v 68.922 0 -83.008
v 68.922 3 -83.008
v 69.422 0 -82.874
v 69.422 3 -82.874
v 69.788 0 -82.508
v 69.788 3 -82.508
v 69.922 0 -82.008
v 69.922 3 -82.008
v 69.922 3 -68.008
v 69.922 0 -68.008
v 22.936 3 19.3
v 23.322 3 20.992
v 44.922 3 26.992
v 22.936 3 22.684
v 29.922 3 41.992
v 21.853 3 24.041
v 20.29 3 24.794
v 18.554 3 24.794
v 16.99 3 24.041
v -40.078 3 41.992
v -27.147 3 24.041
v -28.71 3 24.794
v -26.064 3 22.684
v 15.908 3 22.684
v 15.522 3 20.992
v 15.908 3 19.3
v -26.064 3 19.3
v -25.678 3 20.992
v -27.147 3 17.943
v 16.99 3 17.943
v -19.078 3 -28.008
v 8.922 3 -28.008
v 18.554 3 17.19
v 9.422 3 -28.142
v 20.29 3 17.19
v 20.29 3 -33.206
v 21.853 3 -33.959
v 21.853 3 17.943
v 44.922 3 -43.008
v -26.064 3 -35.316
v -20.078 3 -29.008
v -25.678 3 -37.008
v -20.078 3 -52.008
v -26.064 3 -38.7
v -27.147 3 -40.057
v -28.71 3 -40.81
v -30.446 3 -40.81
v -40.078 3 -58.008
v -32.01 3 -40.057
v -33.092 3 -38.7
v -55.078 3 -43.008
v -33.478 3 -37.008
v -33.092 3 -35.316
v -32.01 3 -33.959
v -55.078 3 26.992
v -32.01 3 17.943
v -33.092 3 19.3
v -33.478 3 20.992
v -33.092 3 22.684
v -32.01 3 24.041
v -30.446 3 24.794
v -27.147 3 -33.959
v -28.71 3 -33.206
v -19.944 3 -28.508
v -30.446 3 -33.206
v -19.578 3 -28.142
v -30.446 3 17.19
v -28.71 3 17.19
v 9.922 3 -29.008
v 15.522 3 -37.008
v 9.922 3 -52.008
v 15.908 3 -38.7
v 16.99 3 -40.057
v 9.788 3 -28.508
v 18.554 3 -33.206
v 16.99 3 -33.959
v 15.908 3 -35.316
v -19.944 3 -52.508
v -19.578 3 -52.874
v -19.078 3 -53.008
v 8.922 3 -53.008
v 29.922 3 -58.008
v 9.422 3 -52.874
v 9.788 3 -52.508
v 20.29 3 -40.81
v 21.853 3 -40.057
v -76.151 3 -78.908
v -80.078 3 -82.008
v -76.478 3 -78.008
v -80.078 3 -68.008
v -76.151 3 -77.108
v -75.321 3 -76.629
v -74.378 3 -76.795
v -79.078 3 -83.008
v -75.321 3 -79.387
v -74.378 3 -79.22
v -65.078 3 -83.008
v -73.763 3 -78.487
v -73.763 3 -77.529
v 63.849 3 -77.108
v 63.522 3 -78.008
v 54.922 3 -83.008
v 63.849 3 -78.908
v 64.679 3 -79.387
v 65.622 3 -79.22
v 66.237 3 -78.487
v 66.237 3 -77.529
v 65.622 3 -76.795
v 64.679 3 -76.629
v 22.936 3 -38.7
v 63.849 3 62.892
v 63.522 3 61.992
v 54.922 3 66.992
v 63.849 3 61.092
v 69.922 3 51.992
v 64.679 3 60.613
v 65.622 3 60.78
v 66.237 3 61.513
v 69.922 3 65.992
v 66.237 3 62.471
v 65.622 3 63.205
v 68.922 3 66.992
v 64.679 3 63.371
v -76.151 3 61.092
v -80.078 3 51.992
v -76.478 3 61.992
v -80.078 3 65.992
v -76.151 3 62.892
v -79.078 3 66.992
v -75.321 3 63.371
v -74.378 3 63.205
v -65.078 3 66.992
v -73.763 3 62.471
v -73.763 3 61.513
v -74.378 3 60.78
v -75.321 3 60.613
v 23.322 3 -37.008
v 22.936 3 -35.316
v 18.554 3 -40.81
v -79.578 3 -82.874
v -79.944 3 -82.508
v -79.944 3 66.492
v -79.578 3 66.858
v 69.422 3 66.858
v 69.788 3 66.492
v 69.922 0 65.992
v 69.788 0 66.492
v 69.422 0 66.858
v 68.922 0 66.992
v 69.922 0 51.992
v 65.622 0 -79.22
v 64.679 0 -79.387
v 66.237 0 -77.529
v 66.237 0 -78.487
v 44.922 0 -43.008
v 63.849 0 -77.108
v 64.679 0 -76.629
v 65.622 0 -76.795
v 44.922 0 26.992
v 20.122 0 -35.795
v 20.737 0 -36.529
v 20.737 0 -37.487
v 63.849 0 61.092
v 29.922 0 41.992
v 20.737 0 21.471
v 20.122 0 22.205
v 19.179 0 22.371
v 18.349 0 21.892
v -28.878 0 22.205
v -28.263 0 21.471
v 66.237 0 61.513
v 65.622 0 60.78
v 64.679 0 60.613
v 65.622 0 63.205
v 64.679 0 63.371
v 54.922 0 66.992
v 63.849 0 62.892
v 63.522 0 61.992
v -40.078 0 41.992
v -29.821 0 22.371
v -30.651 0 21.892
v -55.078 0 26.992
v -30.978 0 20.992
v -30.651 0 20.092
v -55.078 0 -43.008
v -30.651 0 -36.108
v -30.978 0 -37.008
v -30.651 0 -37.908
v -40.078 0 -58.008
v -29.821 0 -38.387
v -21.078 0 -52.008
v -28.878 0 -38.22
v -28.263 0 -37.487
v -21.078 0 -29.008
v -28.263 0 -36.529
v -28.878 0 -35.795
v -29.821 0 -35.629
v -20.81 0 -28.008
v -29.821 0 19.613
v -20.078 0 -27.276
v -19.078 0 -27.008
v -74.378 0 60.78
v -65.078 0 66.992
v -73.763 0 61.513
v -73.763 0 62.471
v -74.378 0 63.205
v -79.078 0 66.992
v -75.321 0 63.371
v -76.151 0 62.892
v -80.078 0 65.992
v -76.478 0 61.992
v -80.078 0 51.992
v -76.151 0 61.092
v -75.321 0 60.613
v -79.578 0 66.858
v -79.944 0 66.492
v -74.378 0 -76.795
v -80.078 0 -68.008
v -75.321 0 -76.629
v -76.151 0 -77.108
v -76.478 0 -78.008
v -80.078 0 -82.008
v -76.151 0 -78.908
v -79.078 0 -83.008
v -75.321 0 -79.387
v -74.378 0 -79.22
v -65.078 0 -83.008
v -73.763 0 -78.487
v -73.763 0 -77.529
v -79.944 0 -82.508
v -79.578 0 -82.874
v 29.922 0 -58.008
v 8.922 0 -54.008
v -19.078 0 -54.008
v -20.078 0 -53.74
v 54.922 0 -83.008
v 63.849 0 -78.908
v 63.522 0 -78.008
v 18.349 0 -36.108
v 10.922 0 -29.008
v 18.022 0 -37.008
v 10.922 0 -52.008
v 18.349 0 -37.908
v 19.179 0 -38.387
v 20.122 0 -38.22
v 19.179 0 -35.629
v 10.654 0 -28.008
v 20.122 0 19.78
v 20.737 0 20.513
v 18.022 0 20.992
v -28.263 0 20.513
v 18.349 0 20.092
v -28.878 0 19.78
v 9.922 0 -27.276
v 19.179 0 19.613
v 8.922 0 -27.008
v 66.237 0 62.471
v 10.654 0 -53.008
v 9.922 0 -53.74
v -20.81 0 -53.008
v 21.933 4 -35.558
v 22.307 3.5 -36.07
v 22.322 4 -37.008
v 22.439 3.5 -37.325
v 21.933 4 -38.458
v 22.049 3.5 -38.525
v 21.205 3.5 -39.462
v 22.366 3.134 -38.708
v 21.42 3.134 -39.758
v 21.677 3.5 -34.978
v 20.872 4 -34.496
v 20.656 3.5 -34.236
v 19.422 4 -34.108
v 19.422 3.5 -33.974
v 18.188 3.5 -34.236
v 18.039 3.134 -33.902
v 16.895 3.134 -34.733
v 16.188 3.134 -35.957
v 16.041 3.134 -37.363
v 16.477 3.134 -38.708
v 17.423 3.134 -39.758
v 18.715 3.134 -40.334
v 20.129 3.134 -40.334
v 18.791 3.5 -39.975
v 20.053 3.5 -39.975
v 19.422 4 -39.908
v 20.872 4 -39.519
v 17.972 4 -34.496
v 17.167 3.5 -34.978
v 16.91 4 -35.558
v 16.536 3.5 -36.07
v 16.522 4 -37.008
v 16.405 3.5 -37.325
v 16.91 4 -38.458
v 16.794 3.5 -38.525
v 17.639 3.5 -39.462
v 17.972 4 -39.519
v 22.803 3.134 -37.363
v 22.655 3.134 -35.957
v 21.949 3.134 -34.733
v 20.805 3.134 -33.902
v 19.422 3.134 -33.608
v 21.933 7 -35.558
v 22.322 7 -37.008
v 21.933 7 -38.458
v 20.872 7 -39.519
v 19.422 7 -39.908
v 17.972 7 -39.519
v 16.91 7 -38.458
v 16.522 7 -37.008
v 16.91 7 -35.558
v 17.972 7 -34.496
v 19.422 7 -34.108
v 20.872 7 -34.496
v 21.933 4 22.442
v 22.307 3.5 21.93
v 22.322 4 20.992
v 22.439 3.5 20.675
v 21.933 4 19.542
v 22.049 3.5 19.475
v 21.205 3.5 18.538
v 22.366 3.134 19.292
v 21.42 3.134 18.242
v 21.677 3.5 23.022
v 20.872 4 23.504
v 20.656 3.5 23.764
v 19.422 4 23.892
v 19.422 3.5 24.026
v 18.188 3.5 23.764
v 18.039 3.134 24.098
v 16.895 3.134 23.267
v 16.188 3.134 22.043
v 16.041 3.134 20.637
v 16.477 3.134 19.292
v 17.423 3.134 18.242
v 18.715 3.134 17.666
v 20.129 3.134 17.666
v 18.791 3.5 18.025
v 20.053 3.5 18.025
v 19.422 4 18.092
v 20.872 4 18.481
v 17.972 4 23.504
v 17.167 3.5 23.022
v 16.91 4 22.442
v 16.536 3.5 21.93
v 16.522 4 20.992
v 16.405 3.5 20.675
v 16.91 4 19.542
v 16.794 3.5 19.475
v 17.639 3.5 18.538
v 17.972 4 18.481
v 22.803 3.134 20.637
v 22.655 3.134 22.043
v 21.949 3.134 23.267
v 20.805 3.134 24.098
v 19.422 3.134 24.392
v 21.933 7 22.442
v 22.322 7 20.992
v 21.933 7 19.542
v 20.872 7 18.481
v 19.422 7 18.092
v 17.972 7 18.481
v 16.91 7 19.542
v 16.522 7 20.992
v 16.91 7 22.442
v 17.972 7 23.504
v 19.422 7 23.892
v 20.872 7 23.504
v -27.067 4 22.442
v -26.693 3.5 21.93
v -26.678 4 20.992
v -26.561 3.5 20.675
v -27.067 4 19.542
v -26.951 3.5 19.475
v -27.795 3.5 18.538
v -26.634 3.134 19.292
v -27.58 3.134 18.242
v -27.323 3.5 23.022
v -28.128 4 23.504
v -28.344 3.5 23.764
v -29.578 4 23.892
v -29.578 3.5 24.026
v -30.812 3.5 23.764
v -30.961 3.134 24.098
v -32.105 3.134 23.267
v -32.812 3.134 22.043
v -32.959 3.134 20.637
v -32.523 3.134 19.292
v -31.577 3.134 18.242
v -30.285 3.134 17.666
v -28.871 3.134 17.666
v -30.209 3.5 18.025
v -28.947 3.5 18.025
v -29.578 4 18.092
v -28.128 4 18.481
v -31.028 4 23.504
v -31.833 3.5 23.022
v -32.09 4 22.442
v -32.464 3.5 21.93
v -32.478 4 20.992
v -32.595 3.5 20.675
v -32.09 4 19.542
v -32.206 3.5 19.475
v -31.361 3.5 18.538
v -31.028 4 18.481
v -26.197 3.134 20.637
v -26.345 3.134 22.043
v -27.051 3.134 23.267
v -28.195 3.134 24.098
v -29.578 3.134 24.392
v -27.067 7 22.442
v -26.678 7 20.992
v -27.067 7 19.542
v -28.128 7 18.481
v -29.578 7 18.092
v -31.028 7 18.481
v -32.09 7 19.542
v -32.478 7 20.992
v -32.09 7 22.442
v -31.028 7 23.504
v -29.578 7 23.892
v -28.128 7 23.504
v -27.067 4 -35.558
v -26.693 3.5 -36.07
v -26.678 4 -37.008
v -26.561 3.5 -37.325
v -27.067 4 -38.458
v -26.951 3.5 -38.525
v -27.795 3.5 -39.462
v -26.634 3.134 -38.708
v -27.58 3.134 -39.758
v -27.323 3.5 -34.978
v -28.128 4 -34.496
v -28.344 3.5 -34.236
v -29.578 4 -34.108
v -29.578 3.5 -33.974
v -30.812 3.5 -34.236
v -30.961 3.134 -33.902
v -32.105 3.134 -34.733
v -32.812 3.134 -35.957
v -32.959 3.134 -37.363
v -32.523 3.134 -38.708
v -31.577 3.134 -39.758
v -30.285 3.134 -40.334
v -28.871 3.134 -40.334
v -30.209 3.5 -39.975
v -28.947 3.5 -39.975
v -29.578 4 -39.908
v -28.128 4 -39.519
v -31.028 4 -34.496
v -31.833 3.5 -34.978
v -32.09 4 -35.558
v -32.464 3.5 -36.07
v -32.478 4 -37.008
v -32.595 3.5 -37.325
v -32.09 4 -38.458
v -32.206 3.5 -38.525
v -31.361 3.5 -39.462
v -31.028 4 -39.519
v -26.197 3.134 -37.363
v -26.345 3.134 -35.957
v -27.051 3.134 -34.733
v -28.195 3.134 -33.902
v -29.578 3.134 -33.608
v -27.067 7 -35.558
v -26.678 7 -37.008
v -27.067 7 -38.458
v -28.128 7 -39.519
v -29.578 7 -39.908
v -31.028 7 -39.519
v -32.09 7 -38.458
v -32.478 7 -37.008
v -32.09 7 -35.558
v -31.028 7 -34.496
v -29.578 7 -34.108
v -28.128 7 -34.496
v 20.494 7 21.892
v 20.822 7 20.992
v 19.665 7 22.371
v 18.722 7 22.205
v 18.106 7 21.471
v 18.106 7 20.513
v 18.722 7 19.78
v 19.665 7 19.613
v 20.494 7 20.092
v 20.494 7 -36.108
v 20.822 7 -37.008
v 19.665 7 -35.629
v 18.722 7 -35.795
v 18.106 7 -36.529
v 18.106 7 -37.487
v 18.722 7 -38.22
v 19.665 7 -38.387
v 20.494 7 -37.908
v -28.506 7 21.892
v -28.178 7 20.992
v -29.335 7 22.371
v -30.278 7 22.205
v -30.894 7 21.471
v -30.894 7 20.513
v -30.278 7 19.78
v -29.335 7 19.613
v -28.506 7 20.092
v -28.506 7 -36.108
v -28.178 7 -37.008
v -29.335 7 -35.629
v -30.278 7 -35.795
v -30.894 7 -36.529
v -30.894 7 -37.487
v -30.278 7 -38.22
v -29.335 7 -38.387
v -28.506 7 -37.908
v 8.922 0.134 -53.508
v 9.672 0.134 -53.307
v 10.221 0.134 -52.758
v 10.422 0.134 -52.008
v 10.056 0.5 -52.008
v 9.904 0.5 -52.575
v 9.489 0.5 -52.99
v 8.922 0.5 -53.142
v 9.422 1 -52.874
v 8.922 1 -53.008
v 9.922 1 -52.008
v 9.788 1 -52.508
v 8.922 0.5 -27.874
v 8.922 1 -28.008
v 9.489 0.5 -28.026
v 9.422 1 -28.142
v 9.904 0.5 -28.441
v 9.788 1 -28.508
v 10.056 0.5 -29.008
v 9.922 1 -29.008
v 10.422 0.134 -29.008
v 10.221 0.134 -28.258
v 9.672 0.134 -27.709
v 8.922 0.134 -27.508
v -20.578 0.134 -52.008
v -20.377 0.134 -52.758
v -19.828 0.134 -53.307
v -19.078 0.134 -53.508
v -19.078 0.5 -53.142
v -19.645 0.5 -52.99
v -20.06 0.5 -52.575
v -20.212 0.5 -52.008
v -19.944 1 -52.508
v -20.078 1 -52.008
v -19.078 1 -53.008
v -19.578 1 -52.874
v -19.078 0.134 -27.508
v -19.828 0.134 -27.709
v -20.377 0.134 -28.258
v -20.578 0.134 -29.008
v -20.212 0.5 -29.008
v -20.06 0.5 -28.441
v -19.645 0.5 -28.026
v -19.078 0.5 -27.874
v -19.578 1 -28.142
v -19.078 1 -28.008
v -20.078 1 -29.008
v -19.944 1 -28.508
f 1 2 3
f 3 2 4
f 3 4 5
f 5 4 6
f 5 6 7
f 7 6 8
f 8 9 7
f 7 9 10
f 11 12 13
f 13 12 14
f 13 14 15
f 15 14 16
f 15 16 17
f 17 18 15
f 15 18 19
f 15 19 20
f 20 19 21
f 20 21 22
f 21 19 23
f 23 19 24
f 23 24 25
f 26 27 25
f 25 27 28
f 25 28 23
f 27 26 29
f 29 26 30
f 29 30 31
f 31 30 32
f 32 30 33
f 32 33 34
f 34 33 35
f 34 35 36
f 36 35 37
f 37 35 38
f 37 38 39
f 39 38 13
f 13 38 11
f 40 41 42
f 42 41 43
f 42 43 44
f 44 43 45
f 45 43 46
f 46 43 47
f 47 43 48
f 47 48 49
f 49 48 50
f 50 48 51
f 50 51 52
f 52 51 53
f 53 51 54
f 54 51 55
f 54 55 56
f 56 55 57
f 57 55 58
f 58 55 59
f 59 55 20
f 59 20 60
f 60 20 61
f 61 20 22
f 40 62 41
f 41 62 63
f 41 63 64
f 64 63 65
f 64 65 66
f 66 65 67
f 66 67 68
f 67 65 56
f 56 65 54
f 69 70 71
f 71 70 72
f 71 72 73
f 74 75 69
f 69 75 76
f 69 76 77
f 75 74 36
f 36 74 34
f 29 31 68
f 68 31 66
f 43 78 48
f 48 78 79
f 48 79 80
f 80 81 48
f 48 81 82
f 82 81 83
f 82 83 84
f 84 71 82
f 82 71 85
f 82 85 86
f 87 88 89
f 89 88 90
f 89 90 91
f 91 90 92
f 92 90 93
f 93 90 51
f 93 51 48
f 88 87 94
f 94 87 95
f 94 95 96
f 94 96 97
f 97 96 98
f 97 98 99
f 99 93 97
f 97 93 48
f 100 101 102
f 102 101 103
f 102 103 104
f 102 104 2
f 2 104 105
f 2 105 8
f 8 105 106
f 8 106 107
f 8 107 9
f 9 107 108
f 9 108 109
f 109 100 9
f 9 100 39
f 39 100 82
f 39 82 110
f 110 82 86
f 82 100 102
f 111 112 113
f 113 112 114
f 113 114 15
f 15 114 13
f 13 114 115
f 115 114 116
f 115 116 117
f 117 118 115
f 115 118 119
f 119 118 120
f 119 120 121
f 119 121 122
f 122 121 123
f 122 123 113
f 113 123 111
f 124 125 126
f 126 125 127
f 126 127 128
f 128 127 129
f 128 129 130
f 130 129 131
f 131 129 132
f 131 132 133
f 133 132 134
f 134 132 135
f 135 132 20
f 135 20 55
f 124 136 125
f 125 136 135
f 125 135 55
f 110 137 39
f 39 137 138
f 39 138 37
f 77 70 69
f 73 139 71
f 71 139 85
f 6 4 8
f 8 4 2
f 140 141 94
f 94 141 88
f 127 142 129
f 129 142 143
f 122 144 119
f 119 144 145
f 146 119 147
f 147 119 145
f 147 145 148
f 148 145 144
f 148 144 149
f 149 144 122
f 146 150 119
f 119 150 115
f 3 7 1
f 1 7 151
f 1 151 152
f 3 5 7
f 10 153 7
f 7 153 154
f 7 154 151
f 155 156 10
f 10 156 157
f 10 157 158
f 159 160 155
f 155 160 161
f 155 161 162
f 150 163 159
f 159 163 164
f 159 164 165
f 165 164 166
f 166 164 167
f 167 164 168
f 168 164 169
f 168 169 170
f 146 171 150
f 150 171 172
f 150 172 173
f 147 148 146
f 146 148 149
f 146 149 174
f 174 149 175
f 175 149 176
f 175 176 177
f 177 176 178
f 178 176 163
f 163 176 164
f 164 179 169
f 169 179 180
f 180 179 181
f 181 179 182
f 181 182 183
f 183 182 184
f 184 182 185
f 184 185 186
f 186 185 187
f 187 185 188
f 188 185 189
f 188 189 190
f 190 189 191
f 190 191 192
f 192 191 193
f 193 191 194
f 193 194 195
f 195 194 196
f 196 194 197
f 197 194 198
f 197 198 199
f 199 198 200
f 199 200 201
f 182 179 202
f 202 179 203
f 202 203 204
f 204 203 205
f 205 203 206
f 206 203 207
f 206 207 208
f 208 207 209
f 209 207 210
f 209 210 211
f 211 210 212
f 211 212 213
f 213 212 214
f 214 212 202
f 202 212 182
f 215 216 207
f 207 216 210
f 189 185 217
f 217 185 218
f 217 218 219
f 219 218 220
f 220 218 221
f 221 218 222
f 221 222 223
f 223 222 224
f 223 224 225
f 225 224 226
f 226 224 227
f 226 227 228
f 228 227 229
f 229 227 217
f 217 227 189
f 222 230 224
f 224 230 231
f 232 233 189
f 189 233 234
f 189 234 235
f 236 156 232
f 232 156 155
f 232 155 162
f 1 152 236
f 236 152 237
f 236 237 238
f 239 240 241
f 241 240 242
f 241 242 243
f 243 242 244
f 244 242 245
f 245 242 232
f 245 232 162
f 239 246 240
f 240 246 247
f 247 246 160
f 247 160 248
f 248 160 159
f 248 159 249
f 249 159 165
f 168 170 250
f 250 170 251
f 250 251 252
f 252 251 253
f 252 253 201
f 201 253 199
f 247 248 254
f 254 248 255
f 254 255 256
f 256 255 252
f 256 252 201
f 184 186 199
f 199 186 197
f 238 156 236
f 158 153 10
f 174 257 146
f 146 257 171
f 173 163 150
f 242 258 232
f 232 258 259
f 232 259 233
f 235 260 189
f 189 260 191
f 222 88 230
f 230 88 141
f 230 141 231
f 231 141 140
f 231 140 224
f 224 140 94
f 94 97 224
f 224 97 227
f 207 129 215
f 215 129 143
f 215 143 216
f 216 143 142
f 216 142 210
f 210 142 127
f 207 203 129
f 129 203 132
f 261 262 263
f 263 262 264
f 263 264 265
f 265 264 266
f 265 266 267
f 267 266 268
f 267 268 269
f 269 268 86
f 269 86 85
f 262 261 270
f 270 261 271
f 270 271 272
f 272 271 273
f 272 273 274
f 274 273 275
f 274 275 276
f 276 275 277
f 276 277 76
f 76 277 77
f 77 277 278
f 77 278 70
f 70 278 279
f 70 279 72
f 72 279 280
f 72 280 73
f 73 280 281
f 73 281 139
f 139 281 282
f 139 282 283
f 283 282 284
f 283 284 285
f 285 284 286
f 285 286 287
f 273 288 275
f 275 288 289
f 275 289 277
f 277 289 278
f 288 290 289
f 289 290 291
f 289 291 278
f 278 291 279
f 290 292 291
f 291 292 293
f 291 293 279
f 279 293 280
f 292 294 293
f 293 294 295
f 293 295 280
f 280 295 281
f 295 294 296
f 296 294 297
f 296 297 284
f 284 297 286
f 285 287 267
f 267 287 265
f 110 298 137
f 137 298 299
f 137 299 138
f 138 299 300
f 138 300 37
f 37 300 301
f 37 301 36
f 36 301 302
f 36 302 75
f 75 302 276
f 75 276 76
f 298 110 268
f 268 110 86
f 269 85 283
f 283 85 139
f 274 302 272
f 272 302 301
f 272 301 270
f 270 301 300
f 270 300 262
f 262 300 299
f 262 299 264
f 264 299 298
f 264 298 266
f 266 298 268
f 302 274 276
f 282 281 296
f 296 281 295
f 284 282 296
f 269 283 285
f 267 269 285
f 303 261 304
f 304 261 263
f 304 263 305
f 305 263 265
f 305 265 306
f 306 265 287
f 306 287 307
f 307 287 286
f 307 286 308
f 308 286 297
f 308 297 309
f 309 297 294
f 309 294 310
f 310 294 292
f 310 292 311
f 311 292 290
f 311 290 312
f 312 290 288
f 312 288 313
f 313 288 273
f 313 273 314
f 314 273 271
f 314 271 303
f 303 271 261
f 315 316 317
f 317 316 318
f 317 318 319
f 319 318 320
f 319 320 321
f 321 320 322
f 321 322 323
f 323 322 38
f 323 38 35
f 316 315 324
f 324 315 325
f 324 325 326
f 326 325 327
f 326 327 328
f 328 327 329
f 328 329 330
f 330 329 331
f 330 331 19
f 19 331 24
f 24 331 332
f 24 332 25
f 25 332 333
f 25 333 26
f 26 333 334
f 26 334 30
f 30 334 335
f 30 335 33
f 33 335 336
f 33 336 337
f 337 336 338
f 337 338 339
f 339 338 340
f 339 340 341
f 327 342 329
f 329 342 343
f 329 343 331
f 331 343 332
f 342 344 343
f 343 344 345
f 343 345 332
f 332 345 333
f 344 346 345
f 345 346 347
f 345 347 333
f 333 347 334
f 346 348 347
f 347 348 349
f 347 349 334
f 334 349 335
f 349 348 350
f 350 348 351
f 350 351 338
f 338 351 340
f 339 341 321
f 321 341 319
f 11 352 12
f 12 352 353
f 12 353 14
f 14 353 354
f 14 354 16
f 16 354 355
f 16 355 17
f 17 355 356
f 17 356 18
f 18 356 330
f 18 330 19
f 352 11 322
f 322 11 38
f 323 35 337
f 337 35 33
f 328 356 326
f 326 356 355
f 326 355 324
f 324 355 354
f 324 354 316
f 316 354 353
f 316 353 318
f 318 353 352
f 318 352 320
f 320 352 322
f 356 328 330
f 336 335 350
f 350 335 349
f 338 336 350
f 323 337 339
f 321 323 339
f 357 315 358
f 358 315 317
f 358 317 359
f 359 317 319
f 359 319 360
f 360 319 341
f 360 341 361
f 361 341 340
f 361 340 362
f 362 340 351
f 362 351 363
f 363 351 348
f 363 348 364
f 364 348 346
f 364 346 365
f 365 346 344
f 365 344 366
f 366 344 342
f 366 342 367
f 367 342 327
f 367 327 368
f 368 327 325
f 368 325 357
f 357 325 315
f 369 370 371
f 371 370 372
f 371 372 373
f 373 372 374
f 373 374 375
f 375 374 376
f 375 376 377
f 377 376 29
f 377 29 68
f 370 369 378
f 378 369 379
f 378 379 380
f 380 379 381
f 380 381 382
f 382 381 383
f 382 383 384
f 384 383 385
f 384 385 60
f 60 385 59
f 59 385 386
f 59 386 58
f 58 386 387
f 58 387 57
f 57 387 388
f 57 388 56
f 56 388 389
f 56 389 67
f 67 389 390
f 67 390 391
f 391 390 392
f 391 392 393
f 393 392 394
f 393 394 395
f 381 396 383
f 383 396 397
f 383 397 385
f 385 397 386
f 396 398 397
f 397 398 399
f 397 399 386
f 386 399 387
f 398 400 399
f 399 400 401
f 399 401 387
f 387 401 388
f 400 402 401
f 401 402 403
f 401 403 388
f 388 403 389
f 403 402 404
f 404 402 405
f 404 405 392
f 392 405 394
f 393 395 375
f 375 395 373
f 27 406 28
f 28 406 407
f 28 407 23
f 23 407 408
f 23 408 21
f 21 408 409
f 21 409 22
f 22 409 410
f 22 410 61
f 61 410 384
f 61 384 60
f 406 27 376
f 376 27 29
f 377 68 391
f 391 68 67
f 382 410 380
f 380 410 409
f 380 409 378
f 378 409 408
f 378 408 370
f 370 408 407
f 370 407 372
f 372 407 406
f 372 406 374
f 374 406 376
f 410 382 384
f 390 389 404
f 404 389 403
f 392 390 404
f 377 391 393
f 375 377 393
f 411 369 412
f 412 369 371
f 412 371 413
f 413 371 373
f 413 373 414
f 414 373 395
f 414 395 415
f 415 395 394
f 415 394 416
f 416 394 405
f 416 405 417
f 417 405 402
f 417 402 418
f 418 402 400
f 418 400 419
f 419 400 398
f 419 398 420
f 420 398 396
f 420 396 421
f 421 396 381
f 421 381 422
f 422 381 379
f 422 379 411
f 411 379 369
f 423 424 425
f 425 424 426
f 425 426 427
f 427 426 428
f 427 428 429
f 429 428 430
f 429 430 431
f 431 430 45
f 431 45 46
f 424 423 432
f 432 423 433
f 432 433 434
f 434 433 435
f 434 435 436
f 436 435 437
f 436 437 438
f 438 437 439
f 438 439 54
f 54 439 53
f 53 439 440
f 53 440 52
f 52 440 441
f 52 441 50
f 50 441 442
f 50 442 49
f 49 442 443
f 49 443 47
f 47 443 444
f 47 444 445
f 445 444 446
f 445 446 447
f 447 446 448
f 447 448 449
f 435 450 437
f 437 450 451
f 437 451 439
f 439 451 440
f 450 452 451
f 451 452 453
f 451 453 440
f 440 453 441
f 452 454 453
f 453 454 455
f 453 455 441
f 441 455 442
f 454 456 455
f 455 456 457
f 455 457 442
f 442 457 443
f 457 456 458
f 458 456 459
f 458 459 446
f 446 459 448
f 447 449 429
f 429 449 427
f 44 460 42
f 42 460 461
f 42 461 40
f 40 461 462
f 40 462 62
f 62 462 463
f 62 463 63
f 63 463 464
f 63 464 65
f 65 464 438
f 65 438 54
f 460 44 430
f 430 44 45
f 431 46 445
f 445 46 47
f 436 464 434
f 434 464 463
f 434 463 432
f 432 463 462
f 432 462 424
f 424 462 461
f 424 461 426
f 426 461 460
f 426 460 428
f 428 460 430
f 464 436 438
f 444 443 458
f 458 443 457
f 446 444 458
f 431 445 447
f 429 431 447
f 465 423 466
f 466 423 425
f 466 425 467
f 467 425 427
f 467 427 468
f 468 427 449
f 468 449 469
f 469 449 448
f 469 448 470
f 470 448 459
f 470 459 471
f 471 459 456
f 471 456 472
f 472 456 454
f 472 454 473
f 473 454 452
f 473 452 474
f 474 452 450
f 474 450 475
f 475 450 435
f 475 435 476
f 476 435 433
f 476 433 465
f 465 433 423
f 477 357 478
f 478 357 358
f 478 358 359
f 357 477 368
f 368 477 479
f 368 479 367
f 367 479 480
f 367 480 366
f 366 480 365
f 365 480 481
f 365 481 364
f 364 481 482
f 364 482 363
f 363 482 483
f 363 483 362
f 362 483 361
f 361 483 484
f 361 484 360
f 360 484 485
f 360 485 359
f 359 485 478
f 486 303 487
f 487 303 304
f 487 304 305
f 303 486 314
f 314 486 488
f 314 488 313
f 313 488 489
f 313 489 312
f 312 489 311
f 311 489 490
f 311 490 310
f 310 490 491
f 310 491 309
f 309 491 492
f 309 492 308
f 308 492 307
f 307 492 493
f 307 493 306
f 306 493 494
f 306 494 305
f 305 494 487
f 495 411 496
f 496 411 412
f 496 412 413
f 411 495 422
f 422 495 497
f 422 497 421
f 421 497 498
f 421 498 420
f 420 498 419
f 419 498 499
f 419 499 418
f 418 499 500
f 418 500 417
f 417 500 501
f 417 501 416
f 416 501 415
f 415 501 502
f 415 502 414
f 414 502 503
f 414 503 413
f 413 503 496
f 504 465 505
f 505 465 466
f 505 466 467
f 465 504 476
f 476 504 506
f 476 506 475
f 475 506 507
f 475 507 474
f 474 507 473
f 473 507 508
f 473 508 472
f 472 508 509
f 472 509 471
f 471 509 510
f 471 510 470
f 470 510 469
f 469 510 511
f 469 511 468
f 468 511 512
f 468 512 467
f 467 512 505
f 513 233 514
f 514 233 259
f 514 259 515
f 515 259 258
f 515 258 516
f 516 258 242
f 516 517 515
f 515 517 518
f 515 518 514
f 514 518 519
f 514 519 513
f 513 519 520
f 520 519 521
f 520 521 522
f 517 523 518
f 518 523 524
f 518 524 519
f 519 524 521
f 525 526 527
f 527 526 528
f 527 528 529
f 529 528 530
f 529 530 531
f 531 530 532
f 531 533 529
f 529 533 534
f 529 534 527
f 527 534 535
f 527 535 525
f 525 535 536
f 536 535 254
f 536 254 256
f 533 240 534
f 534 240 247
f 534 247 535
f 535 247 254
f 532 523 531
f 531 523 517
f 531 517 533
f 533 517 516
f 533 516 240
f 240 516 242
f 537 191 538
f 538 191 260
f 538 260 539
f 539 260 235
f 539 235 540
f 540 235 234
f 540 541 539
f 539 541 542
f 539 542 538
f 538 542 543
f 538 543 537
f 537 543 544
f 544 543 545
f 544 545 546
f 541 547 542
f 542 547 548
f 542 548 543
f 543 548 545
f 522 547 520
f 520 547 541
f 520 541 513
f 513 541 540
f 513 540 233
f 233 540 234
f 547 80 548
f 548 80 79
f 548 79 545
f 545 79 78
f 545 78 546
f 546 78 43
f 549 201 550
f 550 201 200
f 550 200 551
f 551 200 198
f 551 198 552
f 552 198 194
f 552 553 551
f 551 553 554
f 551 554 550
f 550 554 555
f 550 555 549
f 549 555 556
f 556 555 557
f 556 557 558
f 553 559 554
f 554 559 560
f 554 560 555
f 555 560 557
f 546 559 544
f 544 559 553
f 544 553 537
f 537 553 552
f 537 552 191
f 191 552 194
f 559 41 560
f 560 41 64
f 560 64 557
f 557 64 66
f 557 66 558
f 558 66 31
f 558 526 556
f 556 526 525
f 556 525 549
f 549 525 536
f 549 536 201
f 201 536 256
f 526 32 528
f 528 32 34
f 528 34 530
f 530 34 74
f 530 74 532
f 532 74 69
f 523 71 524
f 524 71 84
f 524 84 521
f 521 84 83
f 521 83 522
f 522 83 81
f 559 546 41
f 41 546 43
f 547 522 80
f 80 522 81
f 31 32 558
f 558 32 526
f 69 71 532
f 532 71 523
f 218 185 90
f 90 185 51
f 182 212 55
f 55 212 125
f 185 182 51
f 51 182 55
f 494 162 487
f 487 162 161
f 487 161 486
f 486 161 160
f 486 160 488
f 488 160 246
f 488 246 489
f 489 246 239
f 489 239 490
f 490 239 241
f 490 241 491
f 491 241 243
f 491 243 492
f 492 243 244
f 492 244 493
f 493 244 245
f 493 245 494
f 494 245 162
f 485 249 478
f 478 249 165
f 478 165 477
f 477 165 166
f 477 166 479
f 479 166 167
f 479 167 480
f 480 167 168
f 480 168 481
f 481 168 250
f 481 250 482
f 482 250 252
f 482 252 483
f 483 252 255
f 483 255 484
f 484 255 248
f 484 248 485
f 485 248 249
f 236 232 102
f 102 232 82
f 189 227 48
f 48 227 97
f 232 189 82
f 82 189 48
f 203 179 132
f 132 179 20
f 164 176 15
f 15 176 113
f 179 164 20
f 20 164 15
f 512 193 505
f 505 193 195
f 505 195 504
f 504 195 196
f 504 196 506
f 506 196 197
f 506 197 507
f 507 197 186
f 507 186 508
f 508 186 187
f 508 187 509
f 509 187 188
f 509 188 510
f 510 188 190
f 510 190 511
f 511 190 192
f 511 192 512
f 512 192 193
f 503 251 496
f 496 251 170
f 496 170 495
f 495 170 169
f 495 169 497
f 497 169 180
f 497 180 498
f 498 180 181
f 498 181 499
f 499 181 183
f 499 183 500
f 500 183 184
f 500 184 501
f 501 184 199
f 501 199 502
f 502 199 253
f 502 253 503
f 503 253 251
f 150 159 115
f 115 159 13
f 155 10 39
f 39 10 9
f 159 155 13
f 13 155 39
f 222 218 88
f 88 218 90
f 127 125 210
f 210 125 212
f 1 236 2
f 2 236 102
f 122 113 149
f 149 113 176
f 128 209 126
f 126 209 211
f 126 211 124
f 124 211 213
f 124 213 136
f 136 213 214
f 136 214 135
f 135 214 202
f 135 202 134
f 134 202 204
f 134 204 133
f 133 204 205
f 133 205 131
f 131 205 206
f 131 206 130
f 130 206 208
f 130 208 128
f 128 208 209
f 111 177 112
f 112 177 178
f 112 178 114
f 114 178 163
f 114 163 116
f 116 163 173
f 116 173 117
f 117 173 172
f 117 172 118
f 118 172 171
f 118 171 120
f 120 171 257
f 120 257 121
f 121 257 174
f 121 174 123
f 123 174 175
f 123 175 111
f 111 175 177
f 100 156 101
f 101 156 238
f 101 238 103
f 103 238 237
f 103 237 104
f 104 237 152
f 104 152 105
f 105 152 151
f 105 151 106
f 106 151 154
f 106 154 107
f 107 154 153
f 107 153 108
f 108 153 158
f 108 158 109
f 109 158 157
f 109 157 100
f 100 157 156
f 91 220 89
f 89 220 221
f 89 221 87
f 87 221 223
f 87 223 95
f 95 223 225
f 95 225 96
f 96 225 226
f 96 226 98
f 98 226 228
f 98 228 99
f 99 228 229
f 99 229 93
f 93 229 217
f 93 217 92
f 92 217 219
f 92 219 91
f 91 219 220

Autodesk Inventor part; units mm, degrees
ref_plane "YZ Plane" through (0, 0, 0) normal (1, 0, 0) x (0, 1, 0)
ref_plane "XZ Plane" through (0, 0, 0) normal (0, 1, 0) x (-1, 0, 0)
ref_plane "XY Plane" through (0, 0, 0) normal (0, 0, 1) x (1, 0, 0)
sketch "Sketch1" plane through (0, 0, 0) normal (0, 1, 0) x (-1, 0, 0)
  line L0 (80.0781, 66.9922) -> (-69.9219, 66.9922)
  line L1 (-69.9219, 66.9922) -> (-69.9219, -83.0078)
  line L2 (-69.9219, -83.0078) -> (80.0781, -83.0078)
  line L3 (80.0781, -83.0078) -> (80.0781, 66.9922)
  circle A0 centre (75.0781, -78.0078) radius 1.4
  line L4 (80.0781, -8.0078) -> (-69.9219, -8.0078)
  line L5 (5.0781, -83.0078) -> (5.0781, 66.9922)
  circle A1 centre (-64.9219, -78.0078) radius 1.4
  line L6 (-69.9219, -8.0078) -> (80.0781, -8.0078)
  circle A2 centre (75.0781, 61.9922) radius 1.4
  circle A3 centre (-64.9219, 61.9922) radius 1.4
  point P0 (0, 0)
  dimension "d0" = 150
  dimension "d1" = 150
  dimension "d4" = 2.8
  dimension "d8" = 5
  dimension "d9" = 5
extrude "Extrusion1" add sketch "Sketch1" along normal blind 3
sketch "Sketch2" plane through (0, 3, 0) normal (0, 1, 0) x (1, 0, 0)
  line L0 (-29.5781, 37.0078) -> (19.4219, 37.0078)
  line L1 (19.4219, 37.0078) -> (19.4219, -20.9922)
  line L2 (19.4219, -20.9922) -> (-29.5781, -20.9922)
  line L3 (-29.5781, -20.9922) -> (-29.5781, 37.0078)
  line L4 (-5.0781, 37.0078) -> (-5.0781, -20.9922)
  line L5 (19.4219, 8.0078) -> (-29.5781, 8.0078)
  line L6 (69.9219, 83.0078) -> (-80.0781, 83.0078) projected
  line L7 (69.9219, -66.9922) -> (69.9219, 83.0078) projected
  circle A0 centre (-29.5781, 37.0078) radius 1.4
  circle A1 centre (19.4219, 37.0078) radius 1.4
  circle A2 centre (-29.5781, -20.9922) radius 1.4
  circle A3 centre (19.4219, -20.9922) radius 1.4
  line L8 (-80.0781, 83.0078) -> (-80.0781, -66.9922) projected
  line L9 (-80.0781, 68.0078) -> (-55.0781, 43.0078)
  line L10 (-55.0781, 43.0078) -> (-55.0781, -26.9922)
  line L11 (-55.0781, -26.9922) -> (-80.0781, -51.9922)
  line L12 (-80.0781, -66.9922) -> (69.9219, -66.9922) projected
  line L13 (69.9219, 68.0078) -> (44.9219, 43.0078)
  line L14 (44.9219, 43.0078) -> (44.9219, -26.9922)
  line L15 (44.9219, -26.9922) -> (69.9219, -51.9922)
  line L16 (-65.0781, 83.0078) -> (-40.0781, 58.0078)
  line L17 (-40.0781, 58.0078) -> (29.9219, 58.0078)
  line L18 (29.9219, 58.0078) -> (54.9219, 83.0078)
  line L19 (-65.0781, -66.9922) -> (-40.0781, -41.9922)
  line L20 (-40.0781, -41.9922) -> (29.9219, -41.9922)
  line L21 (29.9219, -41.9922) -> (54.9219, -66.9922)
  point P0 (0, 0)
  dimension "d10" = 58
  dimension "d11" = 49
  dimension "d12" = 75
  dimension "d13" = 75
  dimension "d14" = 2.8
  dimension "d15" = 2.8
  dimension "d16" = 2.8
  dimension "d17" = 2.8
  dimension "d18" = 15
  dimension "d19" = 15
  dimension "d20" = 25
  dimension "d21" = 25
  dimension "d22" = 25
  dimension "d23" = 25
  dimension "d24" = 25
extrude "Extrusion2" cut sketch "Sketch2" against normal through all contours L3 A0 L0 | L0 A0 L3 | A1 L1 L0 | L0 L1 A1 | A2 L2 L3 | L3 L2 A2 | A3 L1 L2 | L2 L1 A3 | L18 L17 L16 L6 | L7 L15 L14 L13 | L9 L10 L11 L8 | L12 L19 L20 L21
sketch "Sketch3" plane through (0, 3, 0) normal (0, 1, 0) x (1, 0, 0)
  line L0 (-20.0781, 53.0078) -> (9.9219, 53.0078)
  line L1 (9.9219, 53.0078) -> (9.9219, 28.0078)
  line L2 (9.9219, 28.0078) -> (-20.0781, 28.0078)
  line L3 (-20.0781, 28.0078) -> (-20.0781, 53.0078)
  line L4 (29.9219, 58.0078) -> (-40.0781, 58.0078) projected
  line L5 (-5.0781, 53.0078) -> (-5.0781, 28.0078)
  line L6 (44.9219, -26.9922) -> (44.9219, 43.0078) projected
  point P0 (0, 0)
  dimension "d27" = 30
  dimension "d28" = 25
  dimension "d29" = 5
  dimension "d44" = 50
extrude "Extrusion3" cut sketch "Sketch3" against normal through all
fillet "Fillet1" radius 1 8 edges at (-20.0781, 1.5, -28.0078) (-20.0781, 0, -40.5078) (-5.0781, 0, -28.0078) (9.9219, 0, -40.5078) (-5.0781, 0, -53.0078) (9.9219, 1.5, -53.0078) (9.9219, 1.5, -28.0078) (-20.0781, 1.5, -53.0078)
sketch "Sketch4" plane through (0, 3, 0) normal (0, 1, 0) x (1, 0, 0)
  circle A0 centre (-29.5781, 37.0078) radius 2.9
  circle A1 centre (19.4219, 37.0078) radius 2.9
  circle A2 centre (19.4219, -20.9922) radius 2.9
  circle A3 centre (-29.5781, -20.9922) radius 2.9
  circle A4 centre (-29.5781, 37.0078) radius 1.3
  circle A5 centre (19.4219, 37.0078) radius 1.3
  circle A6 centre (19.4219, -20.9922) radius 1.3
  circle A7 centre (-29.5781, -20.9922) radius 1.3
  point P0 (0, 0)
  dimension "d33" = 5.8
  dimension "d34" = 5.8
  dimension "d35" = 5.8
  dimension "d36" = 5.8
extrude "Extrusion4" add sketch "Sketch4" along normal blind 4 contours A0 | A1 | A2 | A3 | A4 | A5 | A6 | A7
sketch "Sketch5" plane through (-29.5781, 7, -37.0078) normal (0, 1, 0) x (1, 0, 0)
  circle A0 centre (0, 0) radius 1.4 projected
  circle A1 centre (0, 0) radius 1.3
  circle A2 centre (49, 0) radius 1.4 projected
  circle A3 centre (49, 0) radius 1.3
  circle A4 centre (49, -58) radius 1.4 projected
  circle A5 centre (49, -58) radius 1.3
  circle A6 centre (0, -58) radius 1.4 projected
  circle A7 centre (0, -58) radius 1.3
  point P0 (29.5781, -37.0078)
extrude "Extrusion5" cut sketch "Sketch5" against normal through all contours A0 | A1 | A2 | A3 | A4 | A5 | A6 | A7
fillet "Fillet2" radius 1 4 edges at (-32.4781, 3, -37.0078) (-32.4781, 3, 20.9922) (16.5219, 3, 20.9922) (16.5219, 3, -37.0078)
fillet "Fillet3" radius 1 4 edges at (-80.0781, 1.5, 66.9922) (-80.0781, 1.5, -83.0078) (69.9219, 1.5, 66.9922) (69.9219, 1.5, -83.0078)
properties part number "pi_base"
